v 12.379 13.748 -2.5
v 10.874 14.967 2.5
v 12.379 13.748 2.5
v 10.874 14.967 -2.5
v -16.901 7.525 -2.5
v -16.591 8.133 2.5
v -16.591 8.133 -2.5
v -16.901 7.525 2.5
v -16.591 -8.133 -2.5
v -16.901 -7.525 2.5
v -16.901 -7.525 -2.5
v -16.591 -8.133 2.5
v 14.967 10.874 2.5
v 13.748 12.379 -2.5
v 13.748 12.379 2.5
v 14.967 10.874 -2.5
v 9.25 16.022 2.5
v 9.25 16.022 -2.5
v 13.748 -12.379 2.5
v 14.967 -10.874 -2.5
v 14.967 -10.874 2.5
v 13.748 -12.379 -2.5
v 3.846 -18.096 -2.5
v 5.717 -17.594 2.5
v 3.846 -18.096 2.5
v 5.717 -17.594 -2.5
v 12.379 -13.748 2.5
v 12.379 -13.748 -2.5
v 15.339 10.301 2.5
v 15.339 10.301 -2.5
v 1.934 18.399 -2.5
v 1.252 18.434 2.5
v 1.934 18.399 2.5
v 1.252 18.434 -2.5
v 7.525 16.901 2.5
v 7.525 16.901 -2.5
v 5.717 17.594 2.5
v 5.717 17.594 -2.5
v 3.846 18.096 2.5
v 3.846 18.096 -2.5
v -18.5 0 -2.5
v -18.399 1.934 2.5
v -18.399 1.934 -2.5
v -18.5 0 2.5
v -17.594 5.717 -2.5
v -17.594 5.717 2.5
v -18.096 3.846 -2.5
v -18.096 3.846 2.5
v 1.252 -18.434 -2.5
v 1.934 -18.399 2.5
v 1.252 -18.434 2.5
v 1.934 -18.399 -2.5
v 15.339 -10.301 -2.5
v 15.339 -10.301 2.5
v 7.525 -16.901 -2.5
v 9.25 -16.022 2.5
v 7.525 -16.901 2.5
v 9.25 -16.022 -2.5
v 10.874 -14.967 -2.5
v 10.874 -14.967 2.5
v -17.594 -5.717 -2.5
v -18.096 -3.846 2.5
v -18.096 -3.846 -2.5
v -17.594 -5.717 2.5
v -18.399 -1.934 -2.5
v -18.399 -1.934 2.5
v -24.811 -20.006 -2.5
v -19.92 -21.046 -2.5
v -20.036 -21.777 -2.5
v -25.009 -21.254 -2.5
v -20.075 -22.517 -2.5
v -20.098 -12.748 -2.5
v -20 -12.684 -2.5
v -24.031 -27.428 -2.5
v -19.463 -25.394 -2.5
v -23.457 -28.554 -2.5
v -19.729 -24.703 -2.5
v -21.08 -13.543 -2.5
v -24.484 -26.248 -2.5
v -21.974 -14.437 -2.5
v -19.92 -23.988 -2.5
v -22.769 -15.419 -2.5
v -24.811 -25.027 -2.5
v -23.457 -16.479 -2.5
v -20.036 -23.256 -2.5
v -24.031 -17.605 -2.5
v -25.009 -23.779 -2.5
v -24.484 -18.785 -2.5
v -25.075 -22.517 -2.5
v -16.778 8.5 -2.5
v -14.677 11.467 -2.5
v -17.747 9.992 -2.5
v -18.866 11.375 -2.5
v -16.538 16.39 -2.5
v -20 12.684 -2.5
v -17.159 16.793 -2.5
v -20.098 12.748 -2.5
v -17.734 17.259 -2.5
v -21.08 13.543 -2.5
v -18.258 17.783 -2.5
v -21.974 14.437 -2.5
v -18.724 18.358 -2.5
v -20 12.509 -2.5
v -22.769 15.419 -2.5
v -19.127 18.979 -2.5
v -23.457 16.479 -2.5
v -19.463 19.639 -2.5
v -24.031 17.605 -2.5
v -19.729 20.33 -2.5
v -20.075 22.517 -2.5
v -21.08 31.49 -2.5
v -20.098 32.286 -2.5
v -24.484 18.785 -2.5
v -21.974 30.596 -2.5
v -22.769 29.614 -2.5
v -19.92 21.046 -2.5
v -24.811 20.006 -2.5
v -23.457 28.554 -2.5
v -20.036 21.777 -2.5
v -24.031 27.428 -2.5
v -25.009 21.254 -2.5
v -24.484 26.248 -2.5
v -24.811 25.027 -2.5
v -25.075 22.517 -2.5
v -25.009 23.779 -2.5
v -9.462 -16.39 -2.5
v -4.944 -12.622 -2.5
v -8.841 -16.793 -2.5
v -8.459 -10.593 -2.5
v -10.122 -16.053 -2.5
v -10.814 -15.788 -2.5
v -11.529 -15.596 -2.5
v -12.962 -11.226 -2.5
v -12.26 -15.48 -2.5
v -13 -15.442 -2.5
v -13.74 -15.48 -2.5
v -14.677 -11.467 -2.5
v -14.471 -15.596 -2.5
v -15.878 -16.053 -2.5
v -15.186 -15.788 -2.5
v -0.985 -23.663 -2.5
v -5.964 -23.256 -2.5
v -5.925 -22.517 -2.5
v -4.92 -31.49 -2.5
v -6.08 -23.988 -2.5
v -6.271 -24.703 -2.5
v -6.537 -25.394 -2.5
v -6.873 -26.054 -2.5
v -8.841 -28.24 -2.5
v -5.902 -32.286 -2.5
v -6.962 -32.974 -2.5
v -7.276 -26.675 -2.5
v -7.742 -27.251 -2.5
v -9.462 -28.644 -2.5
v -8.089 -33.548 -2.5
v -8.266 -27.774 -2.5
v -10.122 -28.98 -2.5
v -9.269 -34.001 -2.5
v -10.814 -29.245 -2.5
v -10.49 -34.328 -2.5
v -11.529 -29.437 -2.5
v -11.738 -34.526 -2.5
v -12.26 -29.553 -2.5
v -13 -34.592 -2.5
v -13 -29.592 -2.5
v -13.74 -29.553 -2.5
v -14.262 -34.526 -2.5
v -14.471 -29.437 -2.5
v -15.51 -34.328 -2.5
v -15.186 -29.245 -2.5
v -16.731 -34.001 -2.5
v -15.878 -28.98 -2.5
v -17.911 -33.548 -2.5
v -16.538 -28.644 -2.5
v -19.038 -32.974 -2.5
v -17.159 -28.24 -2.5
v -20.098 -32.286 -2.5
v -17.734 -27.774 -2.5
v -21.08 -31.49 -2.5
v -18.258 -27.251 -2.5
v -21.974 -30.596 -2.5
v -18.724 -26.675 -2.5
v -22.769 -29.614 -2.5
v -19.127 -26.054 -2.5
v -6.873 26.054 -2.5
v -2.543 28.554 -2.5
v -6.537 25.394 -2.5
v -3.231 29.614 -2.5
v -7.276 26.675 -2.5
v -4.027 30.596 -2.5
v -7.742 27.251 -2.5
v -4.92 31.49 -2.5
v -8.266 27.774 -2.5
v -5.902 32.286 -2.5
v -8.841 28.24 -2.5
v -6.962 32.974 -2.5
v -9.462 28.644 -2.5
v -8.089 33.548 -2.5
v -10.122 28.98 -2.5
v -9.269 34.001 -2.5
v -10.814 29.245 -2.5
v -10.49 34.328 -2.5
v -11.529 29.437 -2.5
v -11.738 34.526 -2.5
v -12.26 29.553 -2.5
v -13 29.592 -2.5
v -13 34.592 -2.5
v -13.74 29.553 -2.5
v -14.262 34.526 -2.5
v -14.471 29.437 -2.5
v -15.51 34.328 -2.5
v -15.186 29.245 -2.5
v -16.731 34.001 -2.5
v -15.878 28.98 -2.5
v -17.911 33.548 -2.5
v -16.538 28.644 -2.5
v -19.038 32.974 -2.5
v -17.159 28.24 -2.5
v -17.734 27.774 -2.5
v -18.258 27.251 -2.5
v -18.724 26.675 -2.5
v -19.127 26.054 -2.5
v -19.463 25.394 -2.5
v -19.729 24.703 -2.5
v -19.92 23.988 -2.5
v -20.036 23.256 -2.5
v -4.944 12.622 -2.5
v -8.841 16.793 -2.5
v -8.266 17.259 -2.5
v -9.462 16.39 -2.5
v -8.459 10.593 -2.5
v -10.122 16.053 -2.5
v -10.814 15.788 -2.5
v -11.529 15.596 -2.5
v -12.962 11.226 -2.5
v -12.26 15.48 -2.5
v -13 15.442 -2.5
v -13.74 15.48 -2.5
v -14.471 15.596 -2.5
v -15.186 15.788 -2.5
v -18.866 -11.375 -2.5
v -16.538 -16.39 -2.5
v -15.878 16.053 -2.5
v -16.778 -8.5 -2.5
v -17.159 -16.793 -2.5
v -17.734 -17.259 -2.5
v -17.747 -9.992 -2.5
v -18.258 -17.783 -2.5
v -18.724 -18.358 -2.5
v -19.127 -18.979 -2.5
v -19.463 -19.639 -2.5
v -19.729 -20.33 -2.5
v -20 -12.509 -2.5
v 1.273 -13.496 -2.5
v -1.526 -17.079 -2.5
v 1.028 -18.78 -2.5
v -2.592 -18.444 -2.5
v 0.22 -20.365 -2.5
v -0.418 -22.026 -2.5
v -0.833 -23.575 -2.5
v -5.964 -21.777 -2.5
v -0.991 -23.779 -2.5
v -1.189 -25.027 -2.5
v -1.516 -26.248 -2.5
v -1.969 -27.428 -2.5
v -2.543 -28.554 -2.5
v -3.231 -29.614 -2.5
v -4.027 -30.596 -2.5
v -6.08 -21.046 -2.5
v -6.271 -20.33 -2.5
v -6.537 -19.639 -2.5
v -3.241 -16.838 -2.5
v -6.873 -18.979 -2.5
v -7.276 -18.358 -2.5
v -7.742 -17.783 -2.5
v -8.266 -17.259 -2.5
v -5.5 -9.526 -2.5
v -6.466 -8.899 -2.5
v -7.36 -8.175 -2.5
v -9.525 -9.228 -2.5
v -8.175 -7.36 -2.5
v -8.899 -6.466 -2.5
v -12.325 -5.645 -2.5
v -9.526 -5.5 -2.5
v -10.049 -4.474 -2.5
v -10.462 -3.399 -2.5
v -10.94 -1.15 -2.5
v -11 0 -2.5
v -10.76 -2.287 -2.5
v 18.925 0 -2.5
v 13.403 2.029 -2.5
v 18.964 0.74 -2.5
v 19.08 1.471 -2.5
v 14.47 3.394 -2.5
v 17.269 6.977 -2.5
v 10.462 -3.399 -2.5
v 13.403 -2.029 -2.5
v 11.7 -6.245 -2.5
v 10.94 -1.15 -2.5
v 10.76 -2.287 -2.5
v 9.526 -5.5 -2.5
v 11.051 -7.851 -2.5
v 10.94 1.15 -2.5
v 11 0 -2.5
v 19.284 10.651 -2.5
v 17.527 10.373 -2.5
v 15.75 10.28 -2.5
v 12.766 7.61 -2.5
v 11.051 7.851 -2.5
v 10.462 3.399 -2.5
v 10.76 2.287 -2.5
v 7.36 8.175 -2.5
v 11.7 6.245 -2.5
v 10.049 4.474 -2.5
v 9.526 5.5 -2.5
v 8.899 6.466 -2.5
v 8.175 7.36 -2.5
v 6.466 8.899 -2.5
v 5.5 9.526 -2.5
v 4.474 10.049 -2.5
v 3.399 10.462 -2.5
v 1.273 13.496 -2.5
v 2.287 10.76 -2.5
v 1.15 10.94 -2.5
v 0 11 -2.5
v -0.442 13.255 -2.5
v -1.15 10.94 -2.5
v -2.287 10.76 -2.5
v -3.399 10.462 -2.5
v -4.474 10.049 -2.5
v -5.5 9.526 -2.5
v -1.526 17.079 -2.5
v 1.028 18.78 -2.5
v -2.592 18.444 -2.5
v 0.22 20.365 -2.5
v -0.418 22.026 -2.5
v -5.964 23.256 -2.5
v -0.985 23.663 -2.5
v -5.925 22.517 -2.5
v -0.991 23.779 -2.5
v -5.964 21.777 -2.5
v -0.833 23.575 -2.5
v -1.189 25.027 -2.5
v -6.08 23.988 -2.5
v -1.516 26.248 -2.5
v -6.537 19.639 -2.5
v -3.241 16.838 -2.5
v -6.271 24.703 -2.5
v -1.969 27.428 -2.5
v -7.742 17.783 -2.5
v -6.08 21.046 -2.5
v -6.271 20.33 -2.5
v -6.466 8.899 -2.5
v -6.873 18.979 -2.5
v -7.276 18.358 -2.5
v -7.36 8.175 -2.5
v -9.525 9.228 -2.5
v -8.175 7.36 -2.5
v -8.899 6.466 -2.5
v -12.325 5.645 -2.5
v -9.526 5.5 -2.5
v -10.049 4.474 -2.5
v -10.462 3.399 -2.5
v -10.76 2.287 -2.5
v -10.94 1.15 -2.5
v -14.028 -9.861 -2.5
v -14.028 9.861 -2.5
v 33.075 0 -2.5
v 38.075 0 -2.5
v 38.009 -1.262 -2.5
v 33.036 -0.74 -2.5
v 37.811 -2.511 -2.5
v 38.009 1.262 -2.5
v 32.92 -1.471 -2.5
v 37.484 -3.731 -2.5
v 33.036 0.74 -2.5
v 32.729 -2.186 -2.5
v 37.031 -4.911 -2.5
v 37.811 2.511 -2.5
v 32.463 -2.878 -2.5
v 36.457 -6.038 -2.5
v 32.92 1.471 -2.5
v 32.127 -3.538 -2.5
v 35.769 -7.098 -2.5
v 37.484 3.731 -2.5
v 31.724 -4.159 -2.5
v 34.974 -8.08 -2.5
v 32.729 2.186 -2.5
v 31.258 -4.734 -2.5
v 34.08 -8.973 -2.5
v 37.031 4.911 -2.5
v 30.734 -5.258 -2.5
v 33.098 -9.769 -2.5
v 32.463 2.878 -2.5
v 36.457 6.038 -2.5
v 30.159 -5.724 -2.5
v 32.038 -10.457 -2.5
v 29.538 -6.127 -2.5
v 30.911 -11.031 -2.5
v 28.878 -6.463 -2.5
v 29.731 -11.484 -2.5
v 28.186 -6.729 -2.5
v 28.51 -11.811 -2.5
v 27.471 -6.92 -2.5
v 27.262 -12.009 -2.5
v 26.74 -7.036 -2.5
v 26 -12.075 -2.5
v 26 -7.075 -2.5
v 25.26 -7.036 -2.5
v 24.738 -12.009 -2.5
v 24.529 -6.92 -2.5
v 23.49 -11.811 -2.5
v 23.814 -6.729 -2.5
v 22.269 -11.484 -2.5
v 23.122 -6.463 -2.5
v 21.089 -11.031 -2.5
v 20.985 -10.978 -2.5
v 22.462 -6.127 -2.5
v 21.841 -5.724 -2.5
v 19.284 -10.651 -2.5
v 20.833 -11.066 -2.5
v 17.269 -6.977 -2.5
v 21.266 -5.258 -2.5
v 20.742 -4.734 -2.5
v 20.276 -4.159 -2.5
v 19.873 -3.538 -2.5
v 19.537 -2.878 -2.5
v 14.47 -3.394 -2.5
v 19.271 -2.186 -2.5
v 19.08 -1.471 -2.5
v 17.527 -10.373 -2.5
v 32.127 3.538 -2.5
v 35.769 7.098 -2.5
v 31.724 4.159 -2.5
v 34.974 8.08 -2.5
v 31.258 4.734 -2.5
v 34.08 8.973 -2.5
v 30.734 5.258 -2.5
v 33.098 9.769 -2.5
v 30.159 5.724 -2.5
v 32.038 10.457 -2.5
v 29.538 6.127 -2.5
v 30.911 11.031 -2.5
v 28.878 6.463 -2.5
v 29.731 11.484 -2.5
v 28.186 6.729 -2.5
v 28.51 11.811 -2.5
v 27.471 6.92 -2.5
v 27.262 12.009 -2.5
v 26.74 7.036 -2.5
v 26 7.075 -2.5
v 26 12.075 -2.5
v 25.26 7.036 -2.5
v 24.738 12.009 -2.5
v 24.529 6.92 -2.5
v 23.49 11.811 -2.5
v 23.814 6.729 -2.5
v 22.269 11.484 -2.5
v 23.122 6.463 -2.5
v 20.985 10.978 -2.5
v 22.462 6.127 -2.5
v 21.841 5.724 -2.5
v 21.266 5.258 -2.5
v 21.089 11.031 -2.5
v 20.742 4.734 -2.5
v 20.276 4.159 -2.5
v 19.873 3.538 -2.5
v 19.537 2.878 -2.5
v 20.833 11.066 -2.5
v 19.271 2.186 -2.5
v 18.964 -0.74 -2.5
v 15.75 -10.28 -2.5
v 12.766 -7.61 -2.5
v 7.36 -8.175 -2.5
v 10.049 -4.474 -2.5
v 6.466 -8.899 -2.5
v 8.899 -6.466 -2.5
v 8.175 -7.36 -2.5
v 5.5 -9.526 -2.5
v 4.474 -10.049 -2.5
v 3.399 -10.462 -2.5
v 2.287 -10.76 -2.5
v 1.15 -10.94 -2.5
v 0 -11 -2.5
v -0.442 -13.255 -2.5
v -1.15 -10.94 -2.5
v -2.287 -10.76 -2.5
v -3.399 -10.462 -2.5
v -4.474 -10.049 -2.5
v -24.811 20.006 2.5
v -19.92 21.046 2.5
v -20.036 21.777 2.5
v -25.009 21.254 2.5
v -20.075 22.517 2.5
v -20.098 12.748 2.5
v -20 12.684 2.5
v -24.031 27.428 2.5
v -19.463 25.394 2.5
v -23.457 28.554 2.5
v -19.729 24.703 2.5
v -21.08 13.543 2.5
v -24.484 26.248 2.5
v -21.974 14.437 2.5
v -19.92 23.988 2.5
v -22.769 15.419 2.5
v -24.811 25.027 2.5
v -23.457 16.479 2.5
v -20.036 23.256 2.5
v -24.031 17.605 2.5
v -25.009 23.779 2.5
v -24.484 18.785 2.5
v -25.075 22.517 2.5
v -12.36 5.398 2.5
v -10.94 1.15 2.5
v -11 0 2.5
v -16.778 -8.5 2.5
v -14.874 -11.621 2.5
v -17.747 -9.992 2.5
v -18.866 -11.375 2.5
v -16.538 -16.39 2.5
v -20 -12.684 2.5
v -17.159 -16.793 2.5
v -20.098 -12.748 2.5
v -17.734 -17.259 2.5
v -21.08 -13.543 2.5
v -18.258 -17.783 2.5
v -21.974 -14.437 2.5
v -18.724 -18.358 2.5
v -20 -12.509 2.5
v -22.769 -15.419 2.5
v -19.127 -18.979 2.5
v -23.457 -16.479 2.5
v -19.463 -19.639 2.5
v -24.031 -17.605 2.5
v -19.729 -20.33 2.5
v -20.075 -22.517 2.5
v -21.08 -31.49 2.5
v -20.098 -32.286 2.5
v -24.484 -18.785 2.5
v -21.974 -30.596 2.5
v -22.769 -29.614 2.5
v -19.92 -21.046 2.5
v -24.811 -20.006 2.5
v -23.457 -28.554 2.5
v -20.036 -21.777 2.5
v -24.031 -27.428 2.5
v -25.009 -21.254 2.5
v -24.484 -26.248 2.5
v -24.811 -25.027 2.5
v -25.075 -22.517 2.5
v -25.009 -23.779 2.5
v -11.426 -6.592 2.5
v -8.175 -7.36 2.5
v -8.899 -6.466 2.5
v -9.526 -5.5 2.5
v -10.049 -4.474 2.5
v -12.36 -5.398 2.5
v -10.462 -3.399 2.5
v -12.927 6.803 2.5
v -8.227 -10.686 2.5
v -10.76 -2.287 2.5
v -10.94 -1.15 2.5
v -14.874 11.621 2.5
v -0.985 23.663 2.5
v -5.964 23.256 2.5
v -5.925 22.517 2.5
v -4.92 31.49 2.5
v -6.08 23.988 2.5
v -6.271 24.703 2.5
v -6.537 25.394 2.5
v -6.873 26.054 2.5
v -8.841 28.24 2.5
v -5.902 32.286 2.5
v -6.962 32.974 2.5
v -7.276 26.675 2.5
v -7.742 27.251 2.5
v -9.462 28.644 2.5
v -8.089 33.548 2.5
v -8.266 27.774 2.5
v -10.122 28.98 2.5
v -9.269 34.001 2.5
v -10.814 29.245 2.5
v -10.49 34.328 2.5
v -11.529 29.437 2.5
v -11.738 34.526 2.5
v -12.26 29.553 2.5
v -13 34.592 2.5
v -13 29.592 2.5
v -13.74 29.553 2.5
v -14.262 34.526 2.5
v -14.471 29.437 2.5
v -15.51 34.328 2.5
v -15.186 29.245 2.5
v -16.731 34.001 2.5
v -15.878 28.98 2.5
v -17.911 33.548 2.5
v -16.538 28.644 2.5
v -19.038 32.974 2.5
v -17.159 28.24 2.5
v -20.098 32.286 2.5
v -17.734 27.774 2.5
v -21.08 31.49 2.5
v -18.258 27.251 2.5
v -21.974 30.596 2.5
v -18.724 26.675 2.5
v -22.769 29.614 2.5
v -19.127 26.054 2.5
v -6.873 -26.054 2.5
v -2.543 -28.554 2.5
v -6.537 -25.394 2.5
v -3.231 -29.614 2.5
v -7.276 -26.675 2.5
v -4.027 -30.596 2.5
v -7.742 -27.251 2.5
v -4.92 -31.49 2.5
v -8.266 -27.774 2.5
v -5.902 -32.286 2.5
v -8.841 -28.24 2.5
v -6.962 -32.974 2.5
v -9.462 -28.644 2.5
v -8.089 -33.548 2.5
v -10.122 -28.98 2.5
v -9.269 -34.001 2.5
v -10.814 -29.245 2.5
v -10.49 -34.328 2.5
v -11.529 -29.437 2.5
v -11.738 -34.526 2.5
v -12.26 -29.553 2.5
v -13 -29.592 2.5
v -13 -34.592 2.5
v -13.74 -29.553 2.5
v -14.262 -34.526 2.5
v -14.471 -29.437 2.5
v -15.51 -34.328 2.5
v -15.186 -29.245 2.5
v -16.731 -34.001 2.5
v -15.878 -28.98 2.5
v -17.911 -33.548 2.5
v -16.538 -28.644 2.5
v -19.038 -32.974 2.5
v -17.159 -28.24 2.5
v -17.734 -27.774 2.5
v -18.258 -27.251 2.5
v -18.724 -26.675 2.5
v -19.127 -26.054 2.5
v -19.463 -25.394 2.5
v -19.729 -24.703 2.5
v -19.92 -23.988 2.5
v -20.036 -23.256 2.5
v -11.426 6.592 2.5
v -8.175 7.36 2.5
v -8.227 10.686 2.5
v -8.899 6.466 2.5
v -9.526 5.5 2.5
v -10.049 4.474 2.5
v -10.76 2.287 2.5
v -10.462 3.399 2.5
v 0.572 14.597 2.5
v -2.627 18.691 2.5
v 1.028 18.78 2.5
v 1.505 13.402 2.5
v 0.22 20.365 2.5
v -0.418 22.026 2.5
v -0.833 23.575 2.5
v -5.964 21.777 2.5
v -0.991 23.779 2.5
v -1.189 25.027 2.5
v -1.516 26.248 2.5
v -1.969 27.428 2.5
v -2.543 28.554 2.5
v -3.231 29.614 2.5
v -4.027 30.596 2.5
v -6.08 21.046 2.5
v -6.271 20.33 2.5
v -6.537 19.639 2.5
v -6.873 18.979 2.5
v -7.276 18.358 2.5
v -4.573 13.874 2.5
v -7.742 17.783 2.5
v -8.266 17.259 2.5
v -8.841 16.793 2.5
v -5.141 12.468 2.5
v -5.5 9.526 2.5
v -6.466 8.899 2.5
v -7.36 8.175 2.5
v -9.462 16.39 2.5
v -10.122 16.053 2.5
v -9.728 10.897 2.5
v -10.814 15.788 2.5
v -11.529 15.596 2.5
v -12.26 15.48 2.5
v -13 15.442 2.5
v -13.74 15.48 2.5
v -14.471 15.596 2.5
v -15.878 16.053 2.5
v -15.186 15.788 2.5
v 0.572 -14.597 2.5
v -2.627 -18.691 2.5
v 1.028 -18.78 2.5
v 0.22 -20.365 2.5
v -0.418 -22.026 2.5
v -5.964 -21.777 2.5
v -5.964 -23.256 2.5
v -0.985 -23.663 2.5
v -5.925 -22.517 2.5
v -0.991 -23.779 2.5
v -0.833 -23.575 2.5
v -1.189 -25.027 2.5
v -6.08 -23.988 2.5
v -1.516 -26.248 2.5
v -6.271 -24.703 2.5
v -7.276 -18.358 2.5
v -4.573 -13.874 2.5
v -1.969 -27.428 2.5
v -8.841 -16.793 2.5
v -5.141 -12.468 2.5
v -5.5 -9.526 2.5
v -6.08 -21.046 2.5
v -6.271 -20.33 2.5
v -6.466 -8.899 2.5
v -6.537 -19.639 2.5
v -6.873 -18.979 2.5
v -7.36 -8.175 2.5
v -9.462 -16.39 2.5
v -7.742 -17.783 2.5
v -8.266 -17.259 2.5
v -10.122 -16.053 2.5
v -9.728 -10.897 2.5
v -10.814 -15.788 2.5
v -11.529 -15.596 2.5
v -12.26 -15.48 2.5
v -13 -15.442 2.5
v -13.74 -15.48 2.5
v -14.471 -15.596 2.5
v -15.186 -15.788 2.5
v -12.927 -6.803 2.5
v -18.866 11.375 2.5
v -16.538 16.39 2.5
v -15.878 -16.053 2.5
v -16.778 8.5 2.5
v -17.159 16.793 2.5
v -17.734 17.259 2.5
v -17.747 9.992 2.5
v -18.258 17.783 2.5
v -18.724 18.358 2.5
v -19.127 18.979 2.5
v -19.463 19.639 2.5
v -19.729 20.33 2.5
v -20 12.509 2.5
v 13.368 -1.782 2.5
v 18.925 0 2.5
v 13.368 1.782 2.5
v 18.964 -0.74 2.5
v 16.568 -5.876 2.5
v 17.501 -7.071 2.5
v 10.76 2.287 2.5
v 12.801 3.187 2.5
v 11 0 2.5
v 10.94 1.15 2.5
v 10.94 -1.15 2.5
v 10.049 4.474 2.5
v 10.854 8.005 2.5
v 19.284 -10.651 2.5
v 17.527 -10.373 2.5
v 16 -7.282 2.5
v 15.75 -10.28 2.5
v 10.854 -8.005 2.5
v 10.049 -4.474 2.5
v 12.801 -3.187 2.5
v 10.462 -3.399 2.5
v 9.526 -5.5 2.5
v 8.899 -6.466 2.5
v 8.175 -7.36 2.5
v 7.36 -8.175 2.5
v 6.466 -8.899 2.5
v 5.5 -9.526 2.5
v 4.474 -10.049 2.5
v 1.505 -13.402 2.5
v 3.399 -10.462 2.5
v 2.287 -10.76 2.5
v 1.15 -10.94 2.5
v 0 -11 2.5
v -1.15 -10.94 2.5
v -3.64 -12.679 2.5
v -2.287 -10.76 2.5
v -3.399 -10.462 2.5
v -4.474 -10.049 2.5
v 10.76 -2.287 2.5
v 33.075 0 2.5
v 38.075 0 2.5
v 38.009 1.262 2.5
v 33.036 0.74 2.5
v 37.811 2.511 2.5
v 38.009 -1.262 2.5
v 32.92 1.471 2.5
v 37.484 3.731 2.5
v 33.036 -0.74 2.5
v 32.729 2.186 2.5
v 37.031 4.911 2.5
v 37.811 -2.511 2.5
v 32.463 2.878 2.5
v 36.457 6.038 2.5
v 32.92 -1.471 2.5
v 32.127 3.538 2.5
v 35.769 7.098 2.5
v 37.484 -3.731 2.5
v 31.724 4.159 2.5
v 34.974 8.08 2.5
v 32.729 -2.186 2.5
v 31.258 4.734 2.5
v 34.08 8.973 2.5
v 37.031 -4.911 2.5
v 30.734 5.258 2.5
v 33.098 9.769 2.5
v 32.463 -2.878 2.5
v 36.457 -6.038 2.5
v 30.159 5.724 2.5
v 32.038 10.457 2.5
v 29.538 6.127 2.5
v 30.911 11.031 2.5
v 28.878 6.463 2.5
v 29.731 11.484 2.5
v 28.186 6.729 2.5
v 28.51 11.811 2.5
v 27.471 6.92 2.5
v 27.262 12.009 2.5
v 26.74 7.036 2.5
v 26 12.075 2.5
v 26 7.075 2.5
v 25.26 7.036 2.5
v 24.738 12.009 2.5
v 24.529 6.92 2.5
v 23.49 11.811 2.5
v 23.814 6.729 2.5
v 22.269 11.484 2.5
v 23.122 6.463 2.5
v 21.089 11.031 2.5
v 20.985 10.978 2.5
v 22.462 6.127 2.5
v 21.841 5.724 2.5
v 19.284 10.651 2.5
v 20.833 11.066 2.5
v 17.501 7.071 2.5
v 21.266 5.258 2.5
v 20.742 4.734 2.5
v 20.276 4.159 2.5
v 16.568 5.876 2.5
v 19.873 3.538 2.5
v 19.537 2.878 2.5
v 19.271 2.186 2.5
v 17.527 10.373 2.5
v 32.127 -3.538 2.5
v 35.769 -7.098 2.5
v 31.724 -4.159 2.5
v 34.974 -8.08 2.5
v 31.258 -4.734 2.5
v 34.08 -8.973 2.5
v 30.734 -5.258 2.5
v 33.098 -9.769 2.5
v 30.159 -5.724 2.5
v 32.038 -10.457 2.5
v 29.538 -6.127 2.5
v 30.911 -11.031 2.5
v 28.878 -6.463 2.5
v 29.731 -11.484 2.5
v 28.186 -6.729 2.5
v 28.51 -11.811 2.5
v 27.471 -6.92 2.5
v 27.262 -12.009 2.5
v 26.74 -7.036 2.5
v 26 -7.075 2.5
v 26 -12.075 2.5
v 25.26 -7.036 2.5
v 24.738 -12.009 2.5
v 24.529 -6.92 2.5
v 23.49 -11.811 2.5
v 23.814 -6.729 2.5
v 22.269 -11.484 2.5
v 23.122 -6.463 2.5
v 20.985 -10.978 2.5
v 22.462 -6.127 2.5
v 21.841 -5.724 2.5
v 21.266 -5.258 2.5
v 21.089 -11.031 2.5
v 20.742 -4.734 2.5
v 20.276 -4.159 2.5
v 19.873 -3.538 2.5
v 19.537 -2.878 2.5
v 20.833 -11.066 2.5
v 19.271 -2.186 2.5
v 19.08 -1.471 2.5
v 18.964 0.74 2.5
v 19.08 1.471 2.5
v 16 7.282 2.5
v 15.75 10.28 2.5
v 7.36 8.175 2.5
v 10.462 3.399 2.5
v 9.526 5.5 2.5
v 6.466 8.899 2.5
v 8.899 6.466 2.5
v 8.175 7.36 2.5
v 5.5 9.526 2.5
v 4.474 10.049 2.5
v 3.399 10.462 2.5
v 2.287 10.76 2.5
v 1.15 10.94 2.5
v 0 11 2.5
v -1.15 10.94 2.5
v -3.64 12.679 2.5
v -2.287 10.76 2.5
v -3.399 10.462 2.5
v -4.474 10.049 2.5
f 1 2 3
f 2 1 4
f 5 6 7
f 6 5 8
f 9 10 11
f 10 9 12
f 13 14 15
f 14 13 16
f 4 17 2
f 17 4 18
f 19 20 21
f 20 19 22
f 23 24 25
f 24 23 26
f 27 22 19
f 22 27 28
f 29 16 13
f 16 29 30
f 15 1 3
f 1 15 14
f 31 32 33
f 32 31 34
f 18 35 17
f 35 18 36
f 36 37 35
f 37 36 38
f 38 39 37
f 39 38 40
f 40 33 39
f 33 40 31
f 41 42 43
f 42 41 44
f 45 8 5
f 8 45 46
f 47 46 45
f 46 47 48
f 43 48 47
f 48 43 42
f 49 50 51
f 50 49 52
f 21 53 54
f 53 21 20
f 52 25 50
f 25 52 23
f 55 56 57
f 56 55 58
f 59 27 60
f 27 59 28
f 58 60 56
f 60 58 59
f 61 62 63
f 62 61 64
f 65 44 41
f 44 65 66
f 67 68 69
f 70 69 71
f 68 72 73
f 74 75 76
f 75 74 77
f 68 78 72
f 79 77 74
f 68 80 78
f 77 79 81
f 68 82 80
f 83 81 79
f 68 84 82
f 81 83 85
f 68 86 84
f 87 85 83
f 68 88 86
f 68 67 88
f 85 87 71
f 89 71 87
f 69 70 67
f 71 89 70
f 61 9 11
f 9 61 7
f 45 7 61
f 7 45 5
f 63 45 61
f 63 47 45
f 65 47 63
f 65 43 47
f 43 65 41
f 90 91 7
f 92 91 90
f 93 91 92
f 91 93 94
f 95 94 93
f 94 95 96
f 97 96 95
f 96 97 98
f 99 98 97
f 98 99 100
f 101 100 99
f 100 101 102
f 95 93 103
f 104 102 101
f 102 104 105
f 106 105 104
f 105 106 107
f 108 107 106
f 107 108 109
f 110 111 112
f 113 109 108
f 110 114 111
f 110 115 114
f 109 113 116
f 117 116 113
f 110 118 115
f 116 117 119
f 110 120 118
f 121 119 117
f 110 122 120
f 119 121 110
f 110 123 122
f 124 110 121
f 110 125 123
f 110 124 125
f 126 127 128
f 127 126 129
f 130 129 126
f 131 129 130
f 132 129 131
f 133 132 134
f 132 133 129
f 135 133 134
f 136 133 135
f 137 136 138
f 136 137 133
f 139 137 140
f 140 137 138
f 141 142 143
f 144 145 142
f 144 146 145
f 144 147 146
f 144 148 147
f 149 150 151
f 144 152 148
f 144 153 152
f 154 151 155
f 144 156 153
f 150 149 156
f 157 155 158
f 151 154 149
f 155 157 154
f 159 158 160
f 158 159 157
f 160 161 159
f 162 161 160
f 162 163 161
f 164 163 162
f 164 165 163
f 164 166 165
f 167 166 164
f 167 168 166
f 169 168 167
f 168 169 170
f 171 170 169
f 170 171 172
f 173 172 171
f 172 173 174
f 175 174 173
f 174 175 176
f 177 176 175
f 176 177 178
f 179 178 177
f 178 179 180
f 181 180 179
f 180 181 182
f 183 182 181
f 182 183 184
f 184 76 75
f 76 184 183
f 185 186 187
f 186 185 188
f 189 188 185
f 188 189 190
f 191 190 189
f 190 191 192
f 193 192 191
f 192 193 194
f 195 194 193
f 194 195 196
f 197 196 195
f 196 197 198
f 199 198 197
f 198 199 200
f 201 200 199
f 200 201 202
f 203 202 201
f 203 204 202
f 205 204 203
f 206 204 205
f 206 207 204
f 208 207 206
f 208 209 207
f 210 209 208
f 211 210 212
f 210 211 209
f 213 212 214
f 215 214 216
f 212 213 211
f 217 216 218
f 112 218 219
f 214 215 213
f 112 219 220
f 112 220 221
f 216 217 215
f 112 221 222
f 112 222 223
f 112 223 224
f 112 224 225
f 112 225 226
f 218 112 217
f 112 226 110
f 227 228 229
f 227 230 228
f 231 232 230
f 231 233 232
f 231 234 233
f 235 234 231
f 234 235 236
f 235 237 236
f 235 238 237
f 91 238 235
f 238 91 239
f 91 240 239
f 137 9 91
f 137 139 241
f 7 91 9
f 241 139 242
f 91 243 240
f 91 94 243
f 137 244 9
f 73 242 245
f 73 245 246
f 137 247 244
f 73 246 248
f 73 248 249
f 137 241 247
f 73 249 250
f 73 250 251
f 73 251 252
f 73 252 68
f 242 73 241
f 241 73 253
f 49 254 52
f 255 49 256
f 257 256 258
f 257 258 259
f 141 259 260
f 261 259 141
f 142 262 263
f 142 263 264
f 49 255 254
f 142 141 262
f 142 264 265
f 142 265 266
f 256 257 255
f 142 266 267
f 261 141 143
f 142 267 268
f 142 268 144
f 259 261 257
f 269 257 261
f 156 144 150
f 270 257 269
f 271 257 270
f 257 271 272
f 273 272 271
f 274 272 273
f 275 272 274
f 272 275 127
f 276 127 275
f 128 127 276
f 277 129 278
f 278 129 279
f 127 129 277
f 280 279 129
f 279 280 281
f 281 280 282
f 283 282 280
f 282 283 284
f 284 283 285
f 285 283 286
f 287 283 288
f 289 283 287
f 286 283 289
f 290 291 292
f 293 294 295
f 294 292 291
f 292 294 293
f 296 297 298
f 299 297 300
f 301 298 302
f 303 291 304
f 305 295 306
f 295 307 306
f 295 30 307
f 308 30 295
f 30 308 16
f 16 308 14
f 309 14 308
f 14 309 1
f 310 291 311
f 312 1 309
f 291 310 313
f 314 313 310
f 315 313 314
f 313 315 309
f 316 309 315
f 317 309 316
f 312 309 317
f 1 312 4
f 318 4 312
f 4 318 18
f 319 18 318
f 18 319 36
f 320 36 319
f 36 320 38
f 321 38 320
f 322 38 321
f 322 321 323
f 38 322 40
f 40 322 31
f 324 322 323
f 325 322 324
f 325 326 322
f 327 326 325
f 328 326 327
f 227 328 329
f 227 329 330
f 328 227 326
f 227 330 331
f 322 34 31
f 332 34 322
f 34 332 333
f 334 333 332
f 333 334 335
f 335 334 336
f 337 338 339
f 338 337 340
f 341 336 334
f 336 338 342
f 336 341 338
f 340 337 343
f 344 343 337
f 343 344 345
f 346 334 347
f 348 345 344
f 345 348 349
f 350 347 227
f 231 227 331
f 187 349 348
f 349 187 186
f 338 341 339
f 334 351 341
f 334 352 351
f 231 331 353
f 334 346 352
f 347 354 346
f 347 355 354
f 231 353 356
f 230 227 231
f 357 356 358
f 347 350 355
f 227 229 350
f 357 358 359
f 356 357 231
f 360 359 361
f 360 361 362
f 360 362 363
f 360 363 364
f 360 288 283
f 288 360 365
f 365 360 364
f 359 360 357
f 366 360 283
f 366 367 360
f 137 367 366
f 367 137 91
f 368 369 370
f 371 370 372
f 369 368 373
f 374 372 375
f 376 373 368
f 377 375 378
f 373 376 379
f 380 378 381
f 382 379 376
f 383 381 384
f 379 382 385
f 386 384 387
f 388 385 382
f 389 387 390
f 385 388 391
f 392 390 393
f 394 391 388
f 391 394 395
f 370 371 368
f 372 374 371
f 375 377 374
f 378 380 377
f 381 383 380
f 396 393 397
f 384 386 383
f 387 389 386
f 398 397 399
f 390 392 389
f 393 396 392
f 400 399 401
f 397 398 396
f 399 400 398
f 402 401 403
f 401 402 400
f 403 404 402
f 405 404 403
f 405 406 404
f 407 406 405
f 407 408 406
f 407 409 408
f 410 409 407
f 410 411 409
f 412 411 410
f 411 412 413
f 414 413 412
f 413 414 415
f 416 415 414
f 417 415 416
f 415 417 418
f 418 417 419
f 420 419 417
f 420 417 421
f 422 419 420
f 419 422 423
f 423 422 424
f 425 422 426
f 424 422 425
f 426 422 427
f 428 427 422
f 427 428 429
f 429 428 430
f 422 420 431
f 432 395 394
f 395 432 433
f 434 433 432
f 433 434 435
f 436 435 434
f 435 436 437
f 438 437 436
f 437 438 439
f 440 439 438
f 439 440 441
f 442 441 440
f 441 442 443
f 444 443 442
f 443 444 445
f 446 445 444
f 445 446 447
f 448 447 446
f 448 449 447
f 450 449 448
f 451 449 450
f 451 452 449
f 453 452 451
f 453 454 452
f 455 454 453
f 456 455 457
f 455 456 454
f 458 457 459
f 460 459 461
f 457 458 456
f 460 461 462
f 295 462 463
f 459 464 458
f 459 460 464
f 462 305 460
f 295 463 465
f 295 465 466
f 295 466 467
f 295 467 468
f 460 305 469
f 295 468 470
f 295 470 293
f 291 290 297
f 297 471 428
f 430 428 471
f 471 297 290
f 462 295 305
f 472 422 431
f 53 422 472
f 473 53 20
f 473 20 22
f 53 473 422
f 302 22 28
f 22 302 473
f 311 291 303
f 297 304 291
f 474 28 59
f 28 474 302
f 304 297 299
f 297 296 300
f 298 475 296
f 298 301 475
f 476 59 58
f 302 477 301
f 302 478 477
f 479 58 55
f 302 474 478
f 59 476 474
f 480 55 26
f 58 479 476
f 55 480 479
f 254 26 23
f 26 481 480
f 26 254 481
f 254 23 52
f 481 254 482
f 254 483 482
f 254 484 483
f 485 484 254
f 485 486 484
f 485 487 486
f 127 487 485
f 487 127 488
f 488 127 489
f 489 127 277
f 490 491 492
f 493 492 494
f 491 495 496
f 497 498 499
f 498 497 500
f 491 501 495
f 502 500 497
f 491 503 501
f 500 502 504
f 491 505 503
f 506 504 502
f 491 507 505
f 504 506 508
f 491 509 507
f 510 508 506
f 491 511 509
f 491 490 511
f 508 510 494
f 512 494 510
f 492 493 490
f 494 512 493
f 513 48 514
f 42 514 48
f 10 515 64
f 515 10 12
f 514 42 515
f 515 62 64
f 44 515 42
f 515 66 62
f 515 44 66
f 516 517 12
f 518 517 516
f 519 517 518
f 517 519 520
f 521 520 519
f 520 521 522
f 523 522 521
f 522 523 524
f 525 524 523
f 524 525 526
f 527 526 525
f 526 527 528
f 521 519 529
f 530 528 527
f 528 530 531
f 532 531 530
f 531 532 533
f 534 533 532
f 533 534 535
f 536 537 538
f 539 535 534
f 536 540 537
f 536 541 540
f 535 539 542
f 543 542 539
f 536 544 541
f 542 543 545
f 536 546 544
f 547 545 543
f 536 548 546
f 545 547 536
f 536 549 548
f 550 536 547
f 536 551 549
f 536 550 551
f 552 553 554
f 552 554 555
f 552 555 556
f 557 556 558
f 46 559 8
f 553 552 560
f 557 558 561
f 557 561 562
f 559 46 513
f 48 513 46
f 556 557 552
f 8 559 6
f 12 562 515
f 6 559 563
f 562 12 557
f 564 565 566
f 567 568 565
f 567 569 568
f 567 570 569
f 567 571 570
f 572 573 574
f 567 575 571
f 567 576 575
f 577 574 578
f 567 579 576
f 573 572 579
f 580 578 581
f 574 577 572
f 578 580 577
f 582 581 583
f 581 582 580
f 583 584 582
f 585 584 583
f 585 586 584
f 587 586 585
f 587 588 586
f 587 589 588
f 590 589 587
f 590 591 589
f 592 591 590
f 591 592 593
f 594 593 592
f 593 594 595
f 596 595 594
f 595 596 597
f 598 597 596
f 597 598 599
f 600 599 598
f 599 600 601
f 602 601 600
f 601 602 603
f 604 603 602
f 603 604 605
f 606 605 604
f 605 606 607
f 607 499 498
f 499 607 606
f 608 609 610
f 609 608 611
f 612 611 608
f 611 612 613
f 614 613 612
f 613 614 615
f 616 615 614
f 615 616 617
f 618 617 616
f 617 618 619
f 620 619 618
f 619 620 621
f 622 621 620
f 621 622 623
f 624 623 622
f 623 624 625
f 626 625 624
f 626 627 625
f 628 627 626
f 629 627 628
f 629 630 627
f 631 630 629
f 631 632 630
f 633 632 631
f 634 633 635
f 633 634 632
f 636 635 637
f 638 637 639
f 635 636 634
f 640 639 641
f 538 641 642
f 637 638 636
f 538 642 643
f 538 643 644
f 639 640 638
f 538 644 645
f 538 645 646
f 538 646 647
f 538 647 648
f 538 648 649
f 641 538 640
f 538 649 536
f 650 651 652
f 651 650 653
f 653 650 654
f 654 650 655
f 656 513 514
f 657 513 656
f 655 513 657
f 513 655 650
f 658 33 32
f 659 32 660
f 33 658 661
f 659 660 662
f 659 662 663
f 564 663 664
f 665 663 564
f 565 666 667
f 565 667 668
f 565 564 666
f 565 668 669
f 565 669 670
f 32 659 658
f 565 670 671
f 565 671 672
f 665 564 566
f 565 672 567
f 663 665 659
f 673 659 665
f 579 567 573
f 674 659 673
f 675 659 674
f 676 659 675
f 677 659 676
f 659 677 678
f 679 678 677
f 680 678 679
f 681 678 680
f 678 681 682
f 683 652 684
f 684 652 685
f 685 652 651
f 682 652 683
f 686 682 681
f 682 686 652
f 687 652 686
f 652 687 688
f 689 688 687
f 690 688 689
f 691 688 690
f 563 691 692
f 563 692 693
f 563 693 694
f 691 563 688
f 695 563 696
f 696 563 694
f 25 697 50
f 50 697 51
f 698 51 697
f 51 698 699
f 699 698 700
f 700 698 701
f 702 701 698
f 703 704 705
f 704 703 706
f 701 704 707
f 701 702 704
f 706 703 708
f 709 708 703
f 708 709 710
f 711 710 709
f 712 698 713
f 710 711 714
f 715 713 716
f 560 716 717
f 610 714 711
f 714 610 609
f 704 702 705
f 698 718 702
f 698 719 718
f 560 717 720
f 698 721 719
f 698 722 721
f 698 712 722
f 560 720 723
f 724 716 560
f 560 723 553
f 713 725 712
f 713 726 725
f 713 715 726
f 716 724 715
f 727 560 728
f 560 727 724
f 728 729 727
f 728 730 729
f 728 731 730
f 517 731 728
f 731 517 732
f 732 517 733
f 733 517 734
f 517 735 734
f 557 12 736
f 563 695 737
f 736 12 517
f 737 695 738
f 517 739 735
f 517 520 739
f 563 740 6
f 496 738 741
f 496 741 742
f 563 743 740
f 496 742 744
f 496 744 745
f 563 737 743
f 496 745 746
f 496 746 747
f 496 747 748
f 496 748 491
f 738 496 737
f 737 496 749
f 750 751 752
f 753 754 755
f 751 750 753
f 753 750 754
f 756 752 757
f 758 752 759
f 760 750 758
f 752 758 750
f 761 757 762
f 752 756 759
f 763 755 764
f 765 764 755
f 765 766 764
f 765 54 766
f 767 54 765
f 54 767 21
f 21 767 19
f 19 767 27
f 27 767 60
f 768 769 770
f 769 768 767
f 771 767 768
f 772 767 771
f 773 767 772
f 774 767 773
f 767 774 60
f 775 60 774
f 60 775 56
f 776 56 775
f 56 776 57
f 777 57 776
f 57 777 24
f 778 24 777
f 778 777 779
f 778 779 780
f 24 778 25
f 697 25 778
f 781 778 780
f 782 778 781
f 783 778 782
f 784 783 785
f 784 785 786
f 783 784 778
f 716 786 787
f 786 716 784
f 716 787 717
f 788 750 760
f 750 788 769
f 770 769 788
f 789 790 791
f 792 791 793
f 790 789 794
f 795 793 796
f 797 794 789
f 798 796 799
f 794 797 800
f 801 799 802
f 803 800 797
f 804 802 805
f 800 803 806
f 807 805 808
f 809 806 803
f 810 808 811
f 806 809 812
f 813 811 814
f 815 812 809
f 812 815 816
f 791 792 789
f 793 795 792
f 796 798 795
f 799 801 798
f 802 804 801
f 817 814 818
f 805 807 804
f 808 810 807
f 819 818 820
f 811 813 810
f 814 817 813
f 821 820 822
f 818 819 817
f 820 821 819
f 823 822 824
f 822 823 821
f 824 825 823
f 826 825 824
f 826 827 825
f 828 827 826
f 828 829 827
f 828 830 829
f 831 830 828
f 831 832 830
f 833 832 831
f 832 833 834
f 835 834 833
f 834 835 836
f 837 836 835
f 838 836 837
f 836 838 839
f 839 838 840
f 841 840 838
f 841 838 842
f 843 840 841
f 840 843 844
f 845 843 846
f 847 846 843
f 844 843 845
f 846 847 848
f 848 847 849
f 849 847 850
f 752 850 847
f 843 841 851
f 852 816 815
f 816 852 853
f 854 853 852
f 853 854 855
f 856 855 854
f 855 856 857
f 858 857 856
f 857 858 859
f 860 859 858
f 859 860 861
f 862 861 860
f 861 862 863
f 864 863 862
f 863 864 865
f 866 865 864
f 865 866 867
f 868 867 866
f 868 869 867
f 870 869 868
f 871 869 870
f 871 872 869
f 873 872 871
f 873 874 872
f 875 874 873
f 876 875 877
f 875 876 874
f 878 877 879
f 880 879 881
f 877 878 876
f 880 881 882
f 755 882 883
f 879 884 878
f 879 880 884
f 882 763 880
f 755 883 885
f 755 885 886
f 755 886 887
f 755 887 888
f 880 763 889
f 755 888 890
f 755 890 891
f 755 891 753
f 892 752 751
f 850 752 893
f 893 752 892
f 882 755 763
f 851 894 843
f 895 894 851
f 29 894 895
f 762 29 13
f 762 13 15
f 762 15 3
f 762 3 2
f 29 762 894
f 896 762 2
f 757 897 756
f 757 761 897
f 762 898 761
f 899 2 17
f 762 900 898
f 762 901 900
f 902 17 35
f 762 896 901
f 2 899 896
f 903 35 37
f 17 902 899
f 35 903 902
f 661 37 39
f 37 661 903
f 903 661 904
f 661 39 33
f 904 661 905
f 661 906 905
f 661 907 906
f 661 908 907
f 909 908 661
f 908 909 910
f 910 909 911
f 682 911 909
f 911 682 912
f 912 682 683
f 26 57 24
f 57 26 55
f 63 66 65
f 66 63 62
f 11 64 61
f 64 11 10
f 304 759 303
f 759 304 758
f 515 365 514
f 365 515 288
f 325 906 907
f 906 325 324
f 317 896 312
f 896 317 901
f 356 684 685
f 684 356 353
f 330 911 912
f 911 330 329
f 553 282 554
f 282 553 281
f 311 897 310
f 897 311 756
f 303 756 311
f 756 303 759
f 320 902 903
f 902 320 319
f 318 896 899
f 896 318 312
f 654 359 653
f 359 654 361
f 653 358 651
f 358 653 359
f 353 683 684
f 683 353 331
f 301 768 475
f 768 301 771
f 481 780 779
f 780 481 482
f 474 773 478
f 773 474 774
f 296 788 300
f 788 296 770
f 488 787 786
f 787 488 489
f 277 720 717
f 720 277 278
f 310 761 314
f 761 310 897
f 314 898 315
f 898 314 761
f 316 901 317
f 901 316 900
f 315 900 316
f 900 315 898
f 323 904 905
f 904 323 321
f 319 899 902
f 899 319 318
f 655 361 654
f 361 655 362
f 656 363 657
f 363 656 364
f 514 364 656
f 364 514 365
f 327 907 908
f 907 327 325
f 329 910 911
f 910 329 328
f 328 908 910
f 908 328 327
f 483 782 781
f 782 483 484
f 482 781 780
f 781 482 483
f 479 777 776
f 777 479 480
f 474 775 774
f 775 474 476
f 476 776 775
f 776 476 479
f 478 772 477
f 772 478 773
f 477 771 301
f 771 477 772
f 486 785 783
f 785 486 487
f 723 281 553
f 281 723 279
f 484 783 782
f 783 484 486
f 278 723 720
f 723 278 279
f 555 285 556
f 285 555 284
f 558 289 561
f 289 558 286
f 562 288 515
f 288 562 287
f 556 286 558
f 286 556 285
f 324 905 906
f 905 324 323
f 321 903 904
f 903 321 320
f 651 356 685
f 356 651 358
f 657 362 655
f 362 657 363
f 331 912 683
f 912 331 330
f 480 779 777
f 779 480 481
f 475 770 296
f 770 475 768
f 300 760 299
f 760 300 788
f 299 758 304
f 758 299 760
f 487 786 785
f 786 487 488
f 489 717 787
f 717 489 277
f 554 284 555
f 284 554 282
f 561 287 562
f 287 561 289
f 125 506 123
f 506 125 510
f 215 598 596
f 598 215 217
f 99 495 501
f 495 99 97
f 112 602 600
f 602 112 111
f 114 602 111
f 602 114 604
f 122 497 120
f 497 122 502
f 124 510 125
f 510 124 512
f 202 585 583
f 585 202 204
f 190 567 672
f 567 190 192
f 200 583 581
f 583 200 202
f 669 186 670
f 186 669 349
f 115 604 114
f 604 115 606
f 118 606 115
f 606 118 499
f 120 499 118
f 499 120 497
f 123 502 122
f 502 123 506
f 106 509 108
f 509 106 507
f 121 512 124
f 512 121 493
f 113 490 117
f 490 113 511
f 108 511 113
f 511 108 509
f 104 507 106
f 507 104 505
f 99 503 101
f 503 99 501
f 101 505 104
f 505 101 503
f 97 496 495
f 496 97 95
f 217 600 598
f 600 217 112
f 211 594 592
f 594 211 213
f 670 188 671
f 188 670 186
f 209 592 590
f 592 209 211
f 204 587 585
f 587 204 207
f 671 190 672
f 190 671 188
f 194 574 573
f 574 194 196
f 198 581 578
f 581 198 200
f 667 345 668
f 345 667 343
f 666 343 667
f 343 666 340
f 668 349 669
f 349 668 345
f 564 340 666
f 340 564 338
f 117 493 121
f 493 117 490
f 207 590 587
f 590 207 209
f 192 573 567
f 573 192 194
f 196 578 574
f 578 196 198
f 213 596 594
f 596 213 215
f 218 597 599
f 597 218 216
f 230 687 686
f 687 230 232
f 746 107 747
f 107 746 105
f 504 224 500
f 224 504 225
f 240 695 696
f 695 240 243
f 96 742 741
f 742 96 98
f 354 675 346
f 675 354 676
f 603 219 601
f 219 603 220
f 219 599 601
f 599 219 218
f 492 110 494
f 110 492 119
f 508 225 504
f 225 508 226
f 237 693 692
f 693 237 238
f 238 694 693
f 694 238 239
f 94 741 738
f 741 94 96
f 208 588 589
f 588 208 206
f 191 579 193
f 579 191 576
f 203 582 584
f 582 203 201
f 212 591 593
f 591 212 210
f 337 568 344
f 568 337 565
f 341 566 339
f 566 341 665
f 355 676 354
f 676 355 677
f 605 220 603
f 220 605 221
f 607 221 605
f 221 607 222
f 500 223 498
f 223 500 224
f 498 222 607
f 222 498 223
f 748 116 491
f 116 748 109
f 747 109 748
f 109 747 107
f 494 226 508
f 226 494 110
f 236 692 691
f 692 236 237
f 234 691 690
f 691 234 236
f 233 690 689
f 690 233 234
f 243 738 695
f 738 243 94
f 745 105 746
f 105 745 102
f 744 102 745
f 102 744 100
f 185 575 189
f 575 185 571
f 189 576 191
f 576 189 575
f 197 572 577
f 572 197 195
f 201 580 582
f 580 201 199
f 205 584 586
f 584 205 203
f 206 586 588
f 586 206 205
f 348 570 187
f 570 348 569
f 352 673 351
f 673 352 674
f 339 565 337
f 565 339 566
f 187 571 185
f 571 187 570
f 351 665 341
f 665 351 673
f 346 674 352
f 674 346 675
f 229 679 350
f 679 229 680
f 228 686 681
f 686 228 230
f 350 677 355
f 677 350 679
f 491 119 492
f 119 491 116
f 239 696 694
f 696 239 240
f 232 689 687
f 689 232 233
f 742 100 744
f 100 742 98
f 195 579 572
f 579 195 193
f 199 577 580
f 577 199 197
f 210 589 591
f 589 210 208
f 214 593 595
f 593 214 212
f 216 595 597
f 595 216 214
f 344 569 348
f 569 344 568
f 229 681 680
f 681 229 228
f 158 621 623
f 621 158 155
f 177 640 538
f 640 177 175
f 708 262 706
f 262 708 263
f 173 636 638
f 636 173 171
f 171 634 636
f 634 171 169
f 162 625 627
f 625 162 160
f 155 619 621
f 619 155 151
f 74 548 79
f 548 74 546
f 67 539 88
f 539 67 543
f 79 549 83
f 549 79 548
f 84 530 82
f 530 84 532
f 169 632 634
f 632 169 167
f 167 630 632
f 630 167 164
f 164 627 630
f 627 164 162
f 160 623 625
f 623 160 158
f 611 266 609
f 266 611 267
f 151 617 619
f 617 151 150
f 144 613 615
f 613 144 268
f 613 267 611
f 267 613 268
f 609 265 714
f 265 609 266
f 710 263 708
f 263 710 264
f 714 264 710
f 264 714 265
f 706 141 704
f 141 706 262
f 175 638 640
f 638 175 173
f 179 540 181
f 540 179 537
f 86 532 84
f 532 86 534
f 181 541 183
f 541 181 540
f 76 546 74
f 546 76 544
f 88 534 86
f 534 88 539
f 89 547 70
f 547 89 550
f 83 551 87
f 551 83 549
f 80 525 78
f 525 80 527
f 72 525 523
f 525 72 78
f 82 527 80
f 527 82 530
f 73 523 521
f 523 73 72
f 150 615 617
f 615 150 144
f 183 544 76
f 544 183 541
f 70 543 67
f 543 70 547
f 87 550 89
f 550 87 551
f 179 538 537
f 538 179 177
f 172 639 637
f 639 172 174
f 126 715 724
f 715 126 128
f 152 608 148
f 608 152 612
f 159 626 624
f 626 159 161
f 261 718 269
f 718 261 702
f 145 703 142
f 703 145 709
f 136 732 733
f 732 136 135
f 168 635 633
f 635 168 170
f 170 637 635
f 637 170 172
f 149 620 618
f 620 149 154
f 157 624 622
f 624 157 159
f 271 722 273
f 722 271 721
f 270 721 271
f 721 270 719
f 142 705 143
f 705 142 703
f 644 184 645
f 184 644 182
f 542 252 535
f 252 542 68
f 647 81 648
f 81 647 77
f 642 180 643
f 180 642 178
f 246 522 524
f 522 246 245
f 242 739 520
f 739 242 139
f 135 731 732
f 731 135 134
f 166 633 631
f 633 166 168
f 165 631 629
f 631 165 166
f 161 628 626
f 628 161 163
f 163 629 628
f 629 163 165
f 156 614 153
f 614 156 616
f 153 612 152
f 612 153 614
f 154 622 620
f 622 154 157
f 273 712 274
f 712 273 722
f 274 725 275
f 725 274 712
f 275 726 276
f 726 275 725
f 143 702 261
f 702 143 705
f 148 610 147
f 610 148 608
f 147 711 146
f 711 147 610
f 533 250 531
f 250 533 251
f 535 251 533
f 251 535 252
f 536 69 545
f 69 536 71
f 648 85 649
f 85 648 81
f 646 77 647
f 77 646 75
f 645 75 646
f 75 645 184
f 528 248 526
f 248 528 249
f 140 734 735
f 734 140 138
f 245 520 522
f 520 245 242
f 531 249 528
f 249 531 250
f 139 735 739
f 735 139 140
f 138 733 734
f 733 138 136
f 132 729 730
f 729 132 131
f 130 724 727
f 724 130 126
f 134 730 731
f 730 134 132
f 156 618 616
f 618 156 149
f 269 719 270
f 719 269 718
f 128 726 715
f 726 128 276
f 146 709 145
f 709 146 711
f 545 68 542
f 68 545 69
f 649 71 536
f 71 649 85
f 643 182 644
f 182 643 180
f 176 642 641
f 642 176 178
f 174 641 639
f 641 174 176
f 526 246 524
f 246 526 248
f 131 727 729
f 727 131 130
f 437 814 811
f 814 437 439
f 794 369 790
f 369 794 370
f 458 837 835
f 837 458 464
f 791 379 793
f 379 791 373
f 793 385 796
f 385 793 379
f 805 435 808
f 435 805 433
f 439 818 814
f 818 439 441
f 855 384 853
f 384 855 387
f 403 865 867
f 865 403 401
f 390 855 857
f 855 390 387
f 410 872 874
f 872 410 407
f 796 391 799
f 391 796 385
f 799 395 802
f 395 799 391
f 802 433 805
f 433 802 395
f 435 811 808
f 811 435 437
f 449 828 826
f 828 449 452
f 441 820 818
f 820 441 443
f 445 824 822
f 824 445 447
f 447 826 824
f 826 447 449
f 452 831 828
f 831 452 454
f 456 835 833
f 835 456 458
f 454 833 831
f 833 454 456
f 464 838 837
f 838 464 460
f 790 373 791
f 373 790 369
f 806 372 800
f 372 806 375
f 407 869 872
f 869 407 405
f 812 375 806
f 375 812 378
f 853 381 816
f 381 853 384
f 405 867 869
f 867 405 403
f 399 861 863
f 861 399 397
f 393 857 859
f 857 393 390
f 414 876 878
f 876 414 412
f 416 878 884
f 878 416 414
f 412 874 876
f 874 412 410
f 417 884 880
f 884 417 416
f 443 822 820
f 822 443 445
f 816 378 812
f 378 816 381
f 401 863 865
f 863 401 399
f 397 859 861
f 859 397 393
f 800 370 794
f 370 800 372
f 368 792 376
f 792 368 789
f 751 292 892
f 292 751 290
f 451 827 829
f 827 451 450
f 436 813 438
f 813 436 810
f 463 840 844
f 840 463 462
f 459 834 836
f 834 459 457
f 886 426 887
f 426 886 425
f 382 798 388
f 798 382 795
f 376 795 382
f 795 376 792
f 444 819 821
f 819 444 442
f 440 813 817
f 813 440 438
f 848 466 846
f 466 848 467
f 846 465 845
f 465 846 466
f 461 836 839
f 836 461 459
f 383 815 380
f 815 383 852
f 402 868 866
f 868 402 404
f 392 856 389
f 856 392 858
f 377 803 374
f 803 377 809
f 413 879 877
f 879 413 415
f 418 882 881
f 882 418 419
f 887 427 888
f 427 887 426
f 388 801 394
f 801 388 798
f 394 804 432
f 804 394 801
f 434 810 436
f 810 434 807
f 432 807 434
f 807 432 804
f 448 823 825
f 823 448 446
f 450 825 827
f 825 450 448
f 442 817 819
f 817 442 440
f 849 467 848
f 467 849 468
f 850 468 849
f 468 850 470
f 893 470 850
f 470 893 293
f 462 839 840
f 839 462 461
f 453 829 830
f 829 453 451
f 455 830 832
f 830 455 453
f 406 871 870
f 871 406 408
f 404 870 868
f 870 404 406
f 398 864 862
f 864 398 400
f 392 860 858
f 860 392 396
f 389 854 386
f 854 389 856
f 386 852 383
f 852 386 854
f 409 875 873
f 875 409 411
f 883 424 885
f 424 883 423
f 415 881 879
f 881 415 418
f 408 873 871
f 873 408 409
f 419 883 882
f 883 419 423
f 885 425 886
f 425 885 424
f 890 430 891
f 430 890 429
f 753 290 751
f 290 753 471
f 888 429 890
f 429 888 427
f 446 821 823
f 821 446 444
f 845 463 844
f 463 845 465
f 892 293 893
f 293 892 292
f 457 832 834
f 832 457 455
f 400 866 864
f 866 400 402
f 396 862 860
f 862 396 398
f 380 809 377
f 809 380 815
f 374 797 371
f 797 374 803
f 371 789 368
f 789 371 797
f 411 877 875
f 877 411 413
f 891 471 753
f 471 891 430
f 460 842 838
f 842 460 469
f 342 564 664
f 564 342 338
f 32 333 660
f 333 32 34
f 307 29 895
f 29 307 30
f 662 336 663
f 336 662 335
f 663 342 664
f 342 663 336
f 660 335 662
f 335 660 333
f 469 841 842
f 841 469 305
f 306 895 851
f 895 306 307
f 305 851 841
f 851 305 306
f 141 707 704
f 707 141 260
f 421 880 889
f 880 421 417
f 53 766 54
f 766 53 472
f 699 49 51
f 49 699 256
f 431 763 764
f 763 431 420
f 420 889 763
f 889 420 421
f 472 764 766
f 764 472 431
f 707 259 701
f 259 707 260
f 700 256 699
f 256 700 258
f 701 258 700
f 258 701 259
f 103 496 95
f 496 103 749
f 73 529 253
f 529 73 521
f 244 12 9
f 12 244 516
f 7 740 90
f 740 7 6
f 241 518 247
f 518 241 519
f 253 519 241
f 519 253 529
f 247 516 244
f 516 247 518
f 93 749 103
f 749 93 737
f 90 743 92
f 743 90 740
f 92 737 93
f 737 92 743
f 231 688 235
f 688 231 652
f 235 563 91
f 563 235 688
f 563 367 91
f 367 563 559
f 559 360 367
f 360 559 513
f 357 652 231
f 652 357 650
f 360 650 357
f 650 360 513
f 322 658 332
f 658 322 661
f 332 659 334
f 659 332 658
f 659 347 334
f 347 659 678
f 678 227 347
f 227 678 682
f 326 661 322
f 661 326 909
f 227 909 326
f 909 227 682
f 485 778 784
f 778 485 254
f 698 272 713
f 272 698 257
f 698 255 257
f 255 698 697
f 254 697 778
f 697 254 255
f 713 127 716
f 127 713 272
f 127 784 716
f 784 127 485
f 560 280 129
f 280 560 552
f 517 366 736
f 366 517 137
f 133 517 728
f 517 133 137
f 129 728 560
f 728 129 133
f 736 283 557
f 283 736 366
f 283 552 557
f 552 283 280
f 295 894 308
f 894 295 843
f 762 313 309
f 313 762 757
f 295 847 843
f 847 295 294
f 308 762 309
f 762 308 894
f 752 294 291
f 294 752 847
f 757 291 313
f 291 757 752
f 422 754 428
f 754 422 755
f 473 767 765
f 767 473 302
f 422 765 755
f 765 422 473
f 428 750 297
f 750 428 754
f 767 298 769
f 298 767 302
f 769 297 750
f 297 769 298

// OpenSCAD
    bearingSize = 22;
    weightSize = 14.15;
    wallThickness = 5;
    depth = 5;
    
    $fn = 60;
    
    difference(){
    union(){
    difference(){
        cylinder(d=bearingSize+3*wallThickness, h=depth, center=true);
        cylinder(d=bearingSize, h=depth + 2, center=true);
        
        
    }
    
    rotate([0, 0, 120]) translate([26, 0, 0]) difference(){
        cylinder(d=weightSize+2*wallThickness, h=depth, center=true);
        cylinder(d=weightSize, h=depth + 2, center=true);
    }
    rotate([0, 0, 240]) translate([26, 0, 0]) difference(){
        cylinder(d=weightSize+2*wallThickness, h=depth, center=true);
        cylinder(d=weightSize, h=depth + 2, center=true);
    }
    
    rotate([0, 0, 0]) translate([26, 0, 0]) difference(){
        cylinder(d=weightSize+2*wallThickness, h=depth, center=true);
        cylinder(d=weightSize, h=depth + 2, center=true);
    }
    
    
    rotate([0, 0, 60]) translate([16, 0, 0]){
        difference(){
            cube(size = [8, 30, 5], center = true);
            translate([15.5, 0, 0]) cylinder(d=34, h=depth + 2, center=true);
        }
    }
    
    rotate([0, 0, -60]) translate([16, 0, 0]){
        difference(){
            cube(size = [8, 30, 5], center = true);
            translate([15.5, 0, 0]) cylinder(d=34, h=depth + 2, center=true);
        }
    }
    
    rotate([0, 0, 180]) translate([16, 0, 0]){
        difference(){
            cube(size = [8, 30, 5], center = true);
            translate([15.5, 0, 0]) cylinder(d=34, h=depth + 2, center=true);
        }
    }
    }
        for(i = [1:3]){
            rotate([0, 0, i * 120 + 22]) translate([15, 0, 0]) cylinder(10,3.5,4,$fn=3, center=true);
            rotate([0, 0, i * 120 - 22]) translate([15, 0, 0]) cylinder(10,3.5,4,$fn=3, center=true);
        }
}
